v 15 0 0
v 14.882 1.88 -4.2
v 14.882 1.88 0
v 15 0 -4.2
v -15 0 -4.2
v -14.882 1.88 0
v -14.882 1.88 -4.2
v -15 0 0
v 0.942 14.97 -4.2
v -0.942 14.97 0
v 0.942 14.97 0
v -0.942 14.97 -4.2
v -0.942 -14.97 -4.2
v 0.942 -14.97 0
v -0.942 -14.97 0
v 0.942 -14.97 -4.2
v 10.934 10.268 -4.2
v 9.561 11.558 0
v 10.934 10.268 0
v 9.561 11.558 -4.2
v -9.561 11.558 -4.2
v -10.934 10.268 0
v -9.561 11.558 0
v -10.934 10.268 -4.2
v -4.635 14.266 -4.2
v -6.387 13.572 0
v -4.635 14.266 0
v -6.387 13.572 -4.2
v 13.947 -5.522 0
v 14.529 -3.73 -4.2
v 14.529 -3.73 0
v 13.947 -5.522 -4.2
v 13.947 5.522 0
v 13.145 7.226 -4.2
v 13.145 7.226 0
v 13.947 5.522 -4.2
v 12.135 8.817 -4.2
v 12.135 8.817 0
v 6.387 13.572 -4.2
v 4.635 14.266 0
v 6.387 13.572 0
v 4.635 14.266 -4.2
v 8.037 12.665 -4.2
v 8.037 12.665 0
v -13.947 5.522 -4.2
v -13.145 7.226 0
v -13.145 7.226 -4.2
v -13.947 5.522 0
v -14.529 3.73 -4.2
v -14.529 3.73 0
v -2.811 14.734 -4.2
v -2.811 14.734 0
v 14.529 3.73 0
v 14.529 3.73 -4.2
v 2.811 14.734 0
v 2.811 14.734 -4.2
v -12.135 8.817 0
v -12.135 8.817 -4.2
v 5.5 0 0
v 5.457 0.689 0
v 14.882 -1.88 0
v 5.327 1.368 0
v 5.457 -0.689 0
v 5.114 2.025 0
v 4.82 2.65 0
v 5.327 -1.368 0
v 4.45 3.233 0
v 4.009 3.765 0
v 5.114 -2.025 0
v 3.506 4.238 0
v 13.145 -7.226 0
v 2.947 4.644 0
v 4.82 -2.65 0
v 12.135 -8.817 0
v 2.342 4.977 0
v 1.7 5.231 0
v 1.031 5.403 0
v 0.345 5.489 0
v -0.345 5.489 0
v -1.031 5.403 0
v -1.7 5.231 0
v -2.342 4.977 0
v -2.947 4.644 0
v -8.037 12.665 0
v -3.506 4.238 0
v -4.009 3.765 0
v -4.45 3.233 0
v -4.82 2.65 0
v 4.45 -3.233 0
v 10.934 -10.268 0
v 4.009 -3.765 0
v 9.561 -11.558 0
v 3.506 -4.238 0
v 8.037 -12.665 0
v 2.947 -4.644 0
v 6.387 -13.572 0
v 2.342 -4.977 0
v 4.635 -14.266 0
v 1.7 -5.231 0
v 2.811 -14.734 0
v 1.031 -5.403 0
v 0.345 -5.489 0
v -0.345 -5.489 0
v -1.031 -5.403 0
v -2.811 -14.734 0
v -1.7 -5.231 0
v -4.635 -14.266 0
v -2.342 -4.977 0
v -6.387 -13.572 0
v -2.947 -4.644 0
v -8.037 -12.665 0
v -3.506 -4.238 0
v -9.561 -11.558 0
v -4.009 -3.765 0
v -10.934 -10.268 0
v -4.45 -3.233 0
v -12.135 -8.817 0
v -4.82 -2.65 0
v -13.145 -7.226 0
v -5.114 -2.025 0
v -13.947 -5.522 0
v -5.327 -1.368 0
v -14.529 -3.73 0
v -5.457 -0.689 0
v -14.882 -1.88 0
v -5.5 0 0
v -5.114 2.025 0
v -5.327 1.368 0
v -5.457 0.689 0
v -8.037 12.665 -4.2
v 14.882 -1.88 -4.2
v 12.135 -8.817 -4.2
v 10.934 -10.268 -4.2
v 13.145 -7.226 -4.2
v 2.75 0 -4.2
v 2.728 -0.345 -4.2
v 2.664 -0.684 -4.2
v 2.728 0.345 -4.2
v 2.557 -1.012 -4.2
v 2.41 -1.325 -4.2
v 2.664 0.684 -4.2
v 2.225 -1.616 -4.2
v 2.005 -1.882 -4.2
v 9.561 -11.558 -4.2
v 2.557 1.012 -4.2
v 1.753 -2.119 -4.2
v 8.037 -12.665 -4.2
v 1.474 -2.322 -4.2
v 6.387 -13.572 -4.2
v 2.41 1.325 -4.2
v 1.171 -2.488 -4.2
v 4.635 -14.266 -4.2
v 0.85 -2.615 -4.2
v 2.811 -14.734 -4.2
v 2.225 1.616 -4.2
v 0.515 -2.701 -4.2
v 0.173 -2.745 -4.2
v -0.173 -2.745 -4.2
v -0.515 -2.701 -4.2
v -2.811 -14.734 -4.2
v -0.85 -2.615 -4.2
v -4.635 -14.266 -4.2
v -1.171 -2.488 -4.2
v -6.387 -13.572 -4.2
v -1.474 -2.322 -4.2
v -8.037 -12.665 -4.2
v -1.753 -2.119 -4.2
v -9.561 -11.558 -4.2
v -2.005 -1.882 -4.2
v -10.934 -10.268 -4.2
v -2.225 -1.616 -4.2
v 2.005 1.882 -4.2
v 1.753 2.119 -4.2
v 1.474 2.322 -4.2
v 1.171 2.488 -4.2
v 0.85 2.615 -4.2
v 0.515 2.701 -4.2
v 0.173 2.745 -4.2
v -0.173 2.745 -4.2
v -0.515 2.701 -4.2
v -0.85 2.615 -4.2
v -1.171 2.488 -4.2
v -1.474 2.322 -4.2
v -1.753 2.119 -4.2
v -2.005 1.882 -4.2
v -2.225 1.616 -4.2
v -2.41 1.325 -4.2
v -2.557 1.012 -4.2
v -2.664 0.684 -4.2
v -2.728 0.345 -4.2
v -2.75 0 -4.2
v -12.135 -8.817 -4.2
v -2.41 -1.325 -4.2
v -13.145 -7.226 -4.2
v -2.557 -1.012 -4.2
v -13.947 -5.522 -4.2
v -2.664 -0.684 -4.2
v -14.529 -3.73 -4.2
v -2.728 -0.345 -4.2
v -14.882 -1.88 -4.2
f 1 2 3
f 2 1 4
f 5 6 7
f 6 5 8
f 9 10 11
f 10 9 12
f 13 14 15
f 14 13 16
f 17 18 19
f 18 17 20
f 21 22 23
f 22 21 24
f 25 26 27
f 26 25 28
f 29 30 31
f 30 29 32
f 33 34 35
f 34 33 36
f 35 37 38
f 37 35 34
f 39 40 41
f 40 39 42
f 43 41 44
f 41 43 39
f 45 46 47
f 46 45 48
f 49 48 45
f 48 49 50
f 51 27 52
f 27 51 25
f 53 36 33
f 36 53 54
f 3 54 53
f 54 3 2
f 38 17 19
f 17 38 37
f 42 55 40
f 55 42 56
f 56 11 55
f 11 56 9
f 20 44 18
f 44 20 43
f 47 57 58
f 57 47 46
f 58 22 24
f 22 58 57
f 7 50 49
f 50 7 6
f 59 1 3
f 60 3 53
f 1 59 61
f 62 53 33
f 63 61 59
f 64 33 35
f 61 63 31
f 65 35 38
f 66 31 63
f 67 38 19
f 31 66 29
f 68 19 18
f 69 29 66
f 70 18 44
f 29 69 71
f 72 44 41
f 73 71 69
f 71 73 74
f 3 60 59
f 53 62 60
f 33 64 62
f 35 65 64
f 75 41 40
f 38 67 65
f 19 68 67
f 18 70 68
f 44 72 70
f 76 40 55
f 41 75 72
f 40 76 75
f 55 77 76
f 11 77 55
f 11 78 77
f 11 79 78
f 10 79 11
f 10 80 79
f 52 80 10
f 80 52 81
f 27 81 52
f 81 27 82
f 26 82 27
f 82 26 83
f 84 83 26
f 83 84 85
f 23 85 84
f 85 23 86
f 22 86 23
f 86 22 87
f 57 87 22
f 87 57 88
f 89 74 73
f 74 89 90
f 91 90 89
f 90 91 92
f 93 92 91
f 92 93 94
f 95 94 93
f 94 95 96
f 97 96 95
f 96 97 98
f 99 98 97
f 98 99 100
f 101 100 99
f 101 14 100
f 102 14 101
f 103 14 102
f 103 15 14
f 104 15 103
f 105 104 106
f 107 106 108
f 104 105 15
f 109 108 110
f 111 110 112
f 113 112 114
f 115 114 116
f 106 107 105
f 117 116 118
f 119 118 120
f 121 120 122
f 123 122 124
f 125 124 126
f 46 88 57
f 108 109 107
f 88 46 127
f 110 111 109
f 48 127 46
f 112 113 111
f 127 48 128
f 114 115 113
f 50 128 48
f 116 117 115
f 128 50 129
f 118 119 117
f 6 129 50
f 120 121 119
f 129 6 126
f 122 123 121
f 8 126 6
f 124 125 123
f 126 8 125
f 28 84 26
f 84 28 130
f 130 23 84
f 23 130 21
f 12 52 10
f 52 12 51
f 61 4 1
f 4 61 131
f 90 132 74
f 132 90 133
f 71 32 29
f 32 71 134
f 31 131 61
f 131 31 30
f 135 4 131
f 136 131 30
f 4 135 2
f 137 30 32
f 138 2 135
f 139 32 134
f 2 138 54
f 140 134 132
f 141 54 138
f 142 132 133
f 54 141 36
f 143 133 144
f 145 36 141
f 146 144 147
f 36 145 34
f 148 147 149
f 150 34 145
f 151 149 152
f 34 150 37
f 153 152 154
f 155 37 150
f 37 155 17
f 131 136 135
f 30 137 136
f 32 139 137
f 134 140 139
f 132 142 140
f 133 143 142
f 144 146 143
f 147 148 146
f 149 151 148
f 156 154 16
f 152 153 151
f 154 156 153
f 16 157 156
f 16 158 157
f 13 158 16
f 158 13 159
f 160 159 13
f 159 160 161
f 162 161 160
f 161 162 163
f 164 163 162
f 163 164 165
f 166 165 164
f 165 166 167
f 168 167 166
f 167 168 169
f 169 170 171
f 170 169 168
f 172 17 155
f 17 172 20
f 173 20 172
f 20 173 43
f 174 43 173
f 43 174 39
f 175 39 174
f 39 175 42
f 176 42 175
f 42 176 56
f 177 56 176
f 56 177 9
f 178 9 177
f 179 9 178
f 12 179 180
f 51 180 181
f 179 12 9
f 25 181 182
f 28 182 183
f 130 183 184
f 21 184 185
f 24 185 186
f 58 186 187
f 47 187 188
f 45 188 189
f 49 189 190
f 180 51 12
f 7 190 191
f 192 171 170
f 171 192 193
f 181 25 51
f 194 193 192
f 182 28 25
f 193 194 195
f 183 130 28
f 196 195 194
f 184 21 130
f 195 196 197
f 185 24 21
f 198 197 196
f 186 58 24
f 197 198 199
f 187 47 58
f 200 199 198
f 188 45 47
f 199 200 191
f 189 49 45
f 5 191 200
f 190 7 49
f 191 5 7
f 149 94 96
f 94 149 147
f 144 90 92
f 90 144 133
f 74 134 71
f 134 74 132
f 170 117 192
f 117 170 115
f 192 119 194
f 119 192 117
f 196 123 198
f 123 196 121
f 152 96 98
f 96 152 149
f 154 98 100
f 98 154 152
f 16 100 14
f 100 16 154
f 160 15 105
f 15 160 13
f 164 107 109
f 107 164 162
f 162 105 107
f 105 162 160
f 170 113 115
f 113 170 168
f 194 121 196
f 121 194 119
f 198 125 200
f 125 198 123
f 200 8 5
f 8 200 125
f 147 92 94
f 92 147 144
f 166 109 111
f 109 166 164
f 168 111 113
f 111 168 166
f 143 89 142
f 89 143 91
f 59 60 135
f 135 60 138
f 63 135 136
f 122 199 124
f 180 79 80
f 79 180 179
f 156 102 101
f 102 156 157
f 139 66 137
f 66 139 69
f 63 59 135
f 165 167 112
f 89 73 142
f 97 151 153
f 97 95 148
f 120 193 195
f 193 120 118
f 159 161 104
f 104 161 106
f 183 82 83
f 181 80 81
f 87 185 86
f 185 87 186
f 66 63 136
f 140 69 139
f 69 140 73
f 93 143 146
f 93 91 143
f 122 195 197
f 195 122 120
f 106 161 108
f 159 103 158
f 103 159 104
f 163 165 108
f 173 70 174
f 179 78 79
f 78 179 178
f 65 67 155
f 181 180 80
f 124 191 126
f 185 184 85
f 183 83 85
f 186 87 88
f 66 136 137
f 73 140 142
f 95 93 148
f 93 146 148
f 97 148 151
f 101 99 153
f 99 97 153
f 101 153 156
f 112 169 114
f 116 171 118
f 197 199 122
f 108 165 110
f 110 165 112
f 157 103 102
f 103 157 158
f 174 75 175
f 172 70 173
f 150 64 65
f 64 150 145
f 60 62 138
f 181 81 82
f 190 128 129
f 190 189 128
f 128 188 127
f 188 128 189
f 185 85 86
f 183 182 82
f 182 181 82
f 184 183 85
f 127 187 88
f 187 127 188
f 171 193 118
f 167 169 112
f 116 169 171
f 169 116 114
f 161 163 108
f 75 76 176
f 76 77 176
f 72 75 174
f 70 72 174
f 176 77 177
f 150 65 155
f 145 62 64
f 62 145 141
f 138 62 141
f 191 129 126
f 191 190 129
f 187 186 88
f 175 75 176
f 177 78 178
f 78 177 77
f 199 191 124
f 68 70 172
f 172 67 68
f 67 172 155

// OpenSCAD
$fn = 50;


difference() {
	union() {
		translate(v = [0, 0, -4.2000000000]) {
			cylinder(h = 4.2000000000, r = 15.0000000000);
		}
		translate(v = [0, 0, -4.2000000000]) {
			cylinder(h = 4.2000000000, r = 2.8750000000);
		}
	}
	union() {
		translate(v = [0, 0, 0]) {
			rotate(a = [0, 0, 0]) {
				difference() {
					union() {
						#translate(v = [0, 0, -4.2000000000]) {
							cylinder(h = 4.2000000000, r = 2.2500000000);
						}
						#translate(v = [0, 0, -4.2000000000]) {
							cylinder(h = 4.2000000000, r1 = 2.7500000000, r2 = 5.5000000000);
						}
						#translate(v = [0, 0, -4.2000000000]) {
							cylinder(h = 4.2000000000, r = 2.7500000000);
						}
						#translate(v = [0, 0, -4.2000000000]) {
							cylinder(h = 4.2000000000, r = 2.2500000000);
						}
					}
					union();
				}
			}
		}
	}
}
